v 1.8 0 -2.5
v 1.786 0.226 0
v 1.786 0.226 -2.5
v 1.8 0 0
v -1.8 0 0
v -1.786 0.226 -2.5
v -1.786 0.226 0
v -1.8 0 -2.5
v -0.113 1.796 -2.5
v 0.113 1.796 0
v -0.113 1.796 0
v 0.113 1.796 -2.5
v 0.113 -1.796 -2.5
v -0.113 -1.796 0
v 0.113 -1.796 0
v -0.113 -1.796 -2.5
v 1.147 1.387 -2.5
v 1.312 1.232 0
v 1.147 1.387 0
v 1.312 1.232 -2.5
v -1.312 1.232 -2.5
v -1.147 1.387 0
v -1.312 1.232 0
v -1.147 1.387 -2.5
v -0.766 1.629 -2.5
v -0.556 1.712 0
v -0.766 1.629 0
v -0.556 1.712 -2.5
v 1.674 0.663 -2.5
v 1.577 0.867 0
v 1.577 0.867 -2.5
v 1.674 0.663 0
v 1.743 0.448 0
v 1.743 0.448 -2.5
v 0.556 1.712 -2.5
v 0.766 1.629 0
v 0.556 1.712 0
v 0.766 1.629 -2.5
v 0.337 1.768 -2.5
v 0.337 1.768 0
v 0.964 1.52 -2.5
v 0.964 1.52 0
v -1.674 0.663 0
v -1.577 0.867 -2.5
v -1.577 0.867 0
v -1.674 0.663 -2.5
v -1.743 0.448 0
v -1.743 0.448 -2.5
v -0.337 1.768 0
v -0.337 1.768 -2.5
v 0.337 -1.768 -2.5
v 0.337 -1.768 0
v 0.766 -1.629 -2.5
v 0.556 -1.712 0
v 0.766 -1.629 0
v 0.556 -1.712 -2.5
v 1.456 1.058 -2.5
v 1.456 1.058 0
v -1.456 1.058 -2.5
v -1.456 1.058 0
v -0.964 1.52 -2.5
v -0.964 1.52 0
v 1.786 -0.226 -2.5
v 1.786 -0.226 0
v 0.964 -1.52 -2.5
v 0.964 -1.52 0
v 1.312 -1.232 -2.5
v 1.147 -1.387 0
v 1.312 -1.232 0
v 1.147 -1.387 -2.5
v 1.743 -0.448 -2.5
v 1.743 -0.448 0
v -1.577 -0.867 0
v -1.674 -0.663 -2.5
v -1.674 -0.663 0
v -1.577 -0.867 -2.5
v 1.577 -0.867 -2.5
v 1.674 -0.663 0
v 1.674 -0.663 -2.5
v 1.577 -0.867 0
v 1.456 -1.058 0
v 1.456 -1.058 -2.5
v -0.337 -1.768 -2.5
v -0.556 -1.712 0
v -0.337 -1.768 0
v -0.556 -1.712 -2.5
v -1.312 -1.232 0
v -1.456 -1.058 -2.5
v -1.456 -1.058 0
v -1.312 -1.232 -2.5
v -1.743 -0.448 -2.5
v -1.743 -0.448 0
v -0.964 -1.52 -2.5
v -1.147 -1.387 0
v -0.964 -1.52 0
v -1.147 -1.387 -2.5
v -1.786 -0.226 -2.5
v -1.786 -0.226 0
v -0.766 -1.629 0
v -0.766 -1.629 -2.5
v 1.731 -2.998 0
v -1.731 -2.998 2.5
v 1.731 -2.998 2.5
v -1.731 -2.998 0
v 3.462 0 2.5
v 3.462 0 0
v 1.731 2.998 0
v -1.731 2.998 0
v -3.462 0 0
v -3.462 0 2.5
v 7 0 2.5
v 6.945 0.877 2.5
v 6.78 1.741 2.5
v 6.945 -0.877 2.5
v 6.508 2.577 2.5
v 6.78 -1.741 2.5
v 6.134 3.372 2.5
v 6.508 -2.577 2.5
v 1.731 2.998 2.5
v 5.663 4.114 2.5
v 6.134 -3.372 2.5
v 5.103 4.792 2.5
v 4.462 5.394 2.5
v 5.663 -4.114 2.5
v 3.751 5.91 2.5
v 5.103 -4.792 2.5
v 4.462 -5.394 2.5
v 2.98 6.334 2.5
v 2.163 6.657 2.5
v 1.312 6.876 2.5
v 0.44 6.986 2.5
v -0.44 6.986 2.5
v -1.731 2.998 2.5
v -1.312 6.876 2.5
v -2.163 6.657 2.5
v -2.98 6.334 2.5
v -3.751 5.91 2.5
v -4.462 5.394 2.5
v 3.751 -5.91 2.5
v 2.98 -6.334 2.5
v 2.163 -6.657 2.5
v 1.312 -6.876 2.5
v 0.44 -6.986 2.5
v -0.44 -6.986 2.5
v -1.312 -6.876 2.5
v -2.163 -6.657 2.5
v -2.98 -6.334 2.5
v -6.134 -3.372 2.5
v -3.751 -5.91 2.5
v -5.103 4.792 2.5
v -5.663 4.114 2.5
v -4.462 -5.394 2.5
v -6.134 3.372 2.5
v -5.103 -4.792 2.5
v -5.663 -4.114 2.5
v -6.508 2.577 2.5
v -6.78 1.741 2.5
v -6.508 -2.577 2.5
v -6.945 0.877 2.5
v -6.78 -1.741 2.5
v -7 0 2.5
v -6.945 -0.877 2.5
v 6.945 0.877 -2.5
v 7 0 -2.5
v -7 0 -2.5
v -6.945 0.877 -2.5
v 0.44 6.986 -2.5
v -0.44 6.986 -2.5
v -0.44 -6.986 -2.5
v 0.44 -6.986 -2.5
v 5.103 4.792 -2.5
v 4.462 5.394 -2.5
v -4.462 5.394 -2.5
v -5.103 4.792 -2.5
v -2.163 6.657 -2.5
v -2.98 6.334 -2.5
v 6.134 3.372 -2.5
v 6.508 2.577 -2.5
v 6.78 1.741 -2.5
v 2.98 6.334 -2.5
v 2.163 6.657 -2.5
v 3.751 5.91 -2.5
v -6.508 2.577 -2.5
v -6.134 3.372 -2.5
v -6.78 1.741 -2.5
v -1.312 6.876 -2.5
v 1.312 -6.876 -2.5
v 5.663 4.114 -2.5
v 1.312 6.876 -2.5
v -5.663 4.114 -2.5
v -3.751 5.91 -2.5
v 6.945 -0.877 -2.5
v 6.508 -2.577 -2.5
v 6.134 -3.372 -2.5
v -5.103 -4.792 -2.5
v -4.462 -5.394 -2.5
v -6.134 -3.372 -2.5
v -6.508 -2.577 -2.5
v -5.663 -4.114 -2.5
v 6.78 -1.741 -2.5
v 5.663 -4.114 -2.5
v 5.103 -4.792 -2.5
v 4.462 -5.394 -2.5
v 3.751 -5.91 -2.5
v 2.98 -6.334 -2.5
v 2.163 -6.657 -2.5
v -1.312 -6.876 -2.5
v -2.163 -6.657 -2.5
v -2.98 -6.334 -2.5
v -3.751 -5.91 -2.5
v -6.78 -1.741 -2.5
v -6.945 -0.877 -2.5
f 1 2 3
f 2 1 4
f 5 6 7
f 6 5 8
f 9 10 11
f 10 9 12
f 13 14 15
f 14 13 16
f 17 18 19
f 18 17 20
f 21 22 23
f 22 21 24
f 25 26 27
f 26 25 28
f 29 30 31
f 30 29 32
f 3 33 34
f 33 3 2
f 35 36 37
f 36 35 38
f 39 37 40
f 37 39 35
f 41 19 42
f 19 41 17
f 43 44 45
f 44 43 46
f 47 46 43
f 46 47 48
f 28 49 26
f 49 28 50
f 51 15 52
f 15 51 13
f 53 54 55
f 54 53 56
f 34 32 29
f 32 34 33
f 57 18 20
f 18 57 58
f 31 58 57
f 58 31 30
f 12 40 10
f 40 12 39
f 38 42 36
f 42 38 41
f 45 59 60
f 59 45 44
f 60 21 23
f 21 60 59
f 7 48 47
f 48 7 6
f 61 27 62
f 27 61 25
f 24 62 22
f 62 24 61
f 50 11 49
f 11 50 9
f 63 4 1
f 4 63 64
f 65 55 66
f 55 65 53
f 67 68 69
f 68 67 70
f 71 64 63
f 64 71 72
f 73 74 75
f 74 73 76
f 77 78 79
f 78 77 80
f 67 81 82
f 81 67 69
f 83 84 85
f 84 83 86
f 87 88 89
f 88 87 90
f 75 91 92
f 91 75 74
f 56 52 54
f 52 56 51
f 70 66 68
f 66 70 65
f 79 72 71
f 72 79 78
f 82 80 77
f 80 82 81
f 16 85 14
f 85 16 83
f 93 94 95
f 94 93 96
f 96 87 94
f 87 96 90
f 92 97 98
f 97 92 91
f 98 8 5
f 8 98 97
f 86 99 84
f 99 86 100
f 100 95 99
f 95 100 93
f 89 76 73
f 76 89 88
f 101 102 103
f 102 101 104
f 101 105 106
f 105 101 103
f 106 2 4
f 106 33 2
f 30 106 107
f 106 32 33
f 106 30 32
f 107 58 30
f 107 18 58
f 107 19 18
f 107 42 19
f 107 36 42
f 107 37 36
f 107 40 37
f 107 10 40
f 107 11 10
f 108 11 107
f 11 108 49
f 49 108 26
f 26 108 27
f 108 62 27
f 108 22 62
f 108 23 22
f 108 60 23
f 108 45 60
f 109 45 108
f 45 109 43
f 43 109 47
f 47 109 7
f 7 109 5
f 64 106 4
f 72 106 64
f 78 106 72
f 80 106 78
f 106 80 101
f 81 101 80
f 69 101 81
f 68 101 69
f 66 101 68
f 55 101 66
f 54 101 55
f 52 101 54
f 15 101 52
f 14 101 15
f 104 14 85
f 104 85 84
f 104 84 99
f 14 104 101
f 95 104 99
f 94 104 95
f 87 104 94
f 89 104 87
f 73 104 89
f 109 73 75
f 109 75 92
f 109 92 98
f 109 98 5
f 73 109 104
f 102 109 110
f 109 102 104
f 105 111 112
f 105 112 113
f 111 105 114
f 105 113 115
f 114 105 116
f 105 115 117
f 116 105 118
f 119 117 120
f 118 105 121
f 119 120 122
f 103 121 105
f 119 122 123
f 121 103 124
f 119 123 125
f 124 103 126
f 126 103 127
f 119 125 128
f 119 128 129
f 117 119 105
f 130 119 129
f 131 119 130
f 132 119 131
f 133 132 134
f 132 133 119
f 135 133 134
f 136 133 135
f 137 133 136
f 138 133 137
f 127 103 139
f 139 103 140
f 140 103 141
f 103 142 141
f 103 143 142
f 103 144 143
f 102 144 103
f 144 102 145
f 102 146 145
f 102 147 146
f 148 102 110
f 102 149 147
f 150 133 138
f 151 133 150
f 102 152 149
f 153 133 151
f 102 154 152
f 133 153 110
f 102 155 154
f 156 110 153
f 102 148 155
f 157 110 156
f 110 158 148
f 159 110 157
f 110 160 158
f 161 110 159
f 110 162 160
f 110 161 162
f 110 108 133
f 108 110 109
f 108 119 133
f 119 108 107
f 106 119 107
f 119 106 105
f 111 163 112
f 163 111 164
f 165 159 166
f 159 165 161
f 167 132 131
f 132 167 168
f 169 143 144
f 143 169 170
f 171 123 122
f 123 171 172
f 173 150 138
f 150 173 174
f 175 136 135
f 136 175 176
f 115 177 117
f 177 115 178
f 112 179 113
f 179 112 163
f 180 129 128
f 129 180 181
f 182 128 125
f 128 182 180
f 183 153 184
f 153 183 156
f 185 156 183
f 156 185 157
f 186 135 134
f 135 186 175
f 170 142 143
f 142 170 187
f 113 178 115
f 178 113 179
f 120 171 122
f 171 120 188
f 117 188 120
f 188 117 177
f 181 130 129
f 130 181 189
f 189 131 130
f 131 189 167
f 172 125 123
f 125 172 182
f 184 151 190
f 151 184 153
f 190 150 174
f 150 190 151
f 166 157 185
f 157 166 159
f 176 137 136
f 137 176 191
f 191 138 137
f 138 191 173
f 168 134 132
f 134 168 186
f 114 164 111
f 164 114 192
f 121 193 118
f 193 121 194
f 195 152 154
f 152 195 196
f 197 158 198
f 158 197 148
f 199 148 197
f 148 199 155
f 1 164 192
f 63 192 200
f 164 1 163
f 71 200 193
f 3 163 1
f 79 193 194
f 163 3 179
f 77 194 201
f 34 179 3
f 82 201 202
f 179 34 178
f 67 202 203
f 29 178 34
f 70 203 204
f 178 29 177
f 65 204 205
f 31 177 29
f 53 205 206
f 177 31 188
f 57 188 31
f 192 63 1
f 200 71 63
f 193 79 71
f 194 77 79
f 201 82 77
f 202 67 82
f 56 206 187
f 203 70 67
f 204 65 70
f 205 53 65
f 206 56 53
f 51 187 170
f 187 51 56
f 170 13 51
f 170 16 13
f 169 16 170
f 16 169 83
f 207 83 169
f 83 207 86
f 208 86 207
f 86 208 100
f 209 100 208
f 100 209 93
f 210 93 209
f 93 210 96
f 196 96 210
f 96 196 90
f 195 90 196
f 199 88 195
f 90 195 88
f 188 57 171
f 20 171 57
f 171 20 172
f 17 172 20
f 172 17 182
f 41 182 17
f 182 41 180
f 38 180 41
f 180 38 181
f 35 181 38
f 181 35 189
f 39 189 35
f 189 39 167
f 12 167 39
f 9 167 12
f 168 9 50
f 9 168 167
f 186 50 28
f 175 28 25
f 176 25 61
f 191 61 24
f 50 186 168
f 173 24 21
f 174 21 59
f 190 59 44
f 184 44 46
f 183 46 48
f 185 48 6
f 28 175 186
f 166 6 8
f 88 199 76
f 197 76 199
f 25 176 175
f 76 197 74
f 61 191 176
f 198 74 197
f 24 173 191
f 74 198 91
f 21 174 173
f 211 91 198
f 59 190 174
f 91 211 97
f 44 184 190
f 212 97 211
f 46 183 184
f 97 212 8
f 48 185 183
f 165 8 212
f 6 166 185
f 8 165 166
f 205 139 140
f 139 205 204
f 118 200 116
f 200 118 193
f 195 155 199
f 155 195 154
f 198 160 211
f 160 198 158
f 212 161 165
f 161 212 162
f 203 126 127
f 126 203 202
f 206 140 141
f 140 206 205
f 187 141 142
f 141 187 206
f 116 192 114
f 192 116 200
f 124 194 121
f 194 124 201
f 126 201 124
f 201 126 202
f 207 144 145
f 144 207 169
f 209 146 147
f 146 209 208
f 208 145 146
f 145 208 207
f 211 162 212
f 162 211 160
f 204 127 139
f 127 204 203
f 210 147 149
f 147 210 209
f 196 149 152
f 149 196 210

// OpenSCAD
$fn = 50;


difference() {
	union() {
		translate(v = [0, 0, -2.5000000000]) {
			cylinder(h = 5, r = 7.0000000000);
		}
	}
	union() {
		translate(v = [0, 0, 0]) {
			rotate(a = [0, 0, 0]) {
				difference() {
					union() {
						translate(v = [0, 0, -100.0000000000]) {
							cylinder(h = 200, r = 1.8000000000);
						}
						linear_extrude(height = 2.5000000000) {
							polygon(points = [[3.4620000000, 0.0000000000], [1.7310000000, 2.9981799479], [-1.7310000000, 2.9981799479], [-3.4620000000, 0.0000000000], [-1.7310000000, -2.9981799479], [1.7310000000, -2.9981799479]]);
						}
						translate(v = [0, 0, -100.0000000000]) {
							cylinder(h = 200, r = 1.8000000000);
						}
						translate(v = [0, 0, -100.0000000000]) {
							cylinder(h = 200, r = 1.8000000000);
						}
					}
					union();
				}
			}
		}
	}
}
